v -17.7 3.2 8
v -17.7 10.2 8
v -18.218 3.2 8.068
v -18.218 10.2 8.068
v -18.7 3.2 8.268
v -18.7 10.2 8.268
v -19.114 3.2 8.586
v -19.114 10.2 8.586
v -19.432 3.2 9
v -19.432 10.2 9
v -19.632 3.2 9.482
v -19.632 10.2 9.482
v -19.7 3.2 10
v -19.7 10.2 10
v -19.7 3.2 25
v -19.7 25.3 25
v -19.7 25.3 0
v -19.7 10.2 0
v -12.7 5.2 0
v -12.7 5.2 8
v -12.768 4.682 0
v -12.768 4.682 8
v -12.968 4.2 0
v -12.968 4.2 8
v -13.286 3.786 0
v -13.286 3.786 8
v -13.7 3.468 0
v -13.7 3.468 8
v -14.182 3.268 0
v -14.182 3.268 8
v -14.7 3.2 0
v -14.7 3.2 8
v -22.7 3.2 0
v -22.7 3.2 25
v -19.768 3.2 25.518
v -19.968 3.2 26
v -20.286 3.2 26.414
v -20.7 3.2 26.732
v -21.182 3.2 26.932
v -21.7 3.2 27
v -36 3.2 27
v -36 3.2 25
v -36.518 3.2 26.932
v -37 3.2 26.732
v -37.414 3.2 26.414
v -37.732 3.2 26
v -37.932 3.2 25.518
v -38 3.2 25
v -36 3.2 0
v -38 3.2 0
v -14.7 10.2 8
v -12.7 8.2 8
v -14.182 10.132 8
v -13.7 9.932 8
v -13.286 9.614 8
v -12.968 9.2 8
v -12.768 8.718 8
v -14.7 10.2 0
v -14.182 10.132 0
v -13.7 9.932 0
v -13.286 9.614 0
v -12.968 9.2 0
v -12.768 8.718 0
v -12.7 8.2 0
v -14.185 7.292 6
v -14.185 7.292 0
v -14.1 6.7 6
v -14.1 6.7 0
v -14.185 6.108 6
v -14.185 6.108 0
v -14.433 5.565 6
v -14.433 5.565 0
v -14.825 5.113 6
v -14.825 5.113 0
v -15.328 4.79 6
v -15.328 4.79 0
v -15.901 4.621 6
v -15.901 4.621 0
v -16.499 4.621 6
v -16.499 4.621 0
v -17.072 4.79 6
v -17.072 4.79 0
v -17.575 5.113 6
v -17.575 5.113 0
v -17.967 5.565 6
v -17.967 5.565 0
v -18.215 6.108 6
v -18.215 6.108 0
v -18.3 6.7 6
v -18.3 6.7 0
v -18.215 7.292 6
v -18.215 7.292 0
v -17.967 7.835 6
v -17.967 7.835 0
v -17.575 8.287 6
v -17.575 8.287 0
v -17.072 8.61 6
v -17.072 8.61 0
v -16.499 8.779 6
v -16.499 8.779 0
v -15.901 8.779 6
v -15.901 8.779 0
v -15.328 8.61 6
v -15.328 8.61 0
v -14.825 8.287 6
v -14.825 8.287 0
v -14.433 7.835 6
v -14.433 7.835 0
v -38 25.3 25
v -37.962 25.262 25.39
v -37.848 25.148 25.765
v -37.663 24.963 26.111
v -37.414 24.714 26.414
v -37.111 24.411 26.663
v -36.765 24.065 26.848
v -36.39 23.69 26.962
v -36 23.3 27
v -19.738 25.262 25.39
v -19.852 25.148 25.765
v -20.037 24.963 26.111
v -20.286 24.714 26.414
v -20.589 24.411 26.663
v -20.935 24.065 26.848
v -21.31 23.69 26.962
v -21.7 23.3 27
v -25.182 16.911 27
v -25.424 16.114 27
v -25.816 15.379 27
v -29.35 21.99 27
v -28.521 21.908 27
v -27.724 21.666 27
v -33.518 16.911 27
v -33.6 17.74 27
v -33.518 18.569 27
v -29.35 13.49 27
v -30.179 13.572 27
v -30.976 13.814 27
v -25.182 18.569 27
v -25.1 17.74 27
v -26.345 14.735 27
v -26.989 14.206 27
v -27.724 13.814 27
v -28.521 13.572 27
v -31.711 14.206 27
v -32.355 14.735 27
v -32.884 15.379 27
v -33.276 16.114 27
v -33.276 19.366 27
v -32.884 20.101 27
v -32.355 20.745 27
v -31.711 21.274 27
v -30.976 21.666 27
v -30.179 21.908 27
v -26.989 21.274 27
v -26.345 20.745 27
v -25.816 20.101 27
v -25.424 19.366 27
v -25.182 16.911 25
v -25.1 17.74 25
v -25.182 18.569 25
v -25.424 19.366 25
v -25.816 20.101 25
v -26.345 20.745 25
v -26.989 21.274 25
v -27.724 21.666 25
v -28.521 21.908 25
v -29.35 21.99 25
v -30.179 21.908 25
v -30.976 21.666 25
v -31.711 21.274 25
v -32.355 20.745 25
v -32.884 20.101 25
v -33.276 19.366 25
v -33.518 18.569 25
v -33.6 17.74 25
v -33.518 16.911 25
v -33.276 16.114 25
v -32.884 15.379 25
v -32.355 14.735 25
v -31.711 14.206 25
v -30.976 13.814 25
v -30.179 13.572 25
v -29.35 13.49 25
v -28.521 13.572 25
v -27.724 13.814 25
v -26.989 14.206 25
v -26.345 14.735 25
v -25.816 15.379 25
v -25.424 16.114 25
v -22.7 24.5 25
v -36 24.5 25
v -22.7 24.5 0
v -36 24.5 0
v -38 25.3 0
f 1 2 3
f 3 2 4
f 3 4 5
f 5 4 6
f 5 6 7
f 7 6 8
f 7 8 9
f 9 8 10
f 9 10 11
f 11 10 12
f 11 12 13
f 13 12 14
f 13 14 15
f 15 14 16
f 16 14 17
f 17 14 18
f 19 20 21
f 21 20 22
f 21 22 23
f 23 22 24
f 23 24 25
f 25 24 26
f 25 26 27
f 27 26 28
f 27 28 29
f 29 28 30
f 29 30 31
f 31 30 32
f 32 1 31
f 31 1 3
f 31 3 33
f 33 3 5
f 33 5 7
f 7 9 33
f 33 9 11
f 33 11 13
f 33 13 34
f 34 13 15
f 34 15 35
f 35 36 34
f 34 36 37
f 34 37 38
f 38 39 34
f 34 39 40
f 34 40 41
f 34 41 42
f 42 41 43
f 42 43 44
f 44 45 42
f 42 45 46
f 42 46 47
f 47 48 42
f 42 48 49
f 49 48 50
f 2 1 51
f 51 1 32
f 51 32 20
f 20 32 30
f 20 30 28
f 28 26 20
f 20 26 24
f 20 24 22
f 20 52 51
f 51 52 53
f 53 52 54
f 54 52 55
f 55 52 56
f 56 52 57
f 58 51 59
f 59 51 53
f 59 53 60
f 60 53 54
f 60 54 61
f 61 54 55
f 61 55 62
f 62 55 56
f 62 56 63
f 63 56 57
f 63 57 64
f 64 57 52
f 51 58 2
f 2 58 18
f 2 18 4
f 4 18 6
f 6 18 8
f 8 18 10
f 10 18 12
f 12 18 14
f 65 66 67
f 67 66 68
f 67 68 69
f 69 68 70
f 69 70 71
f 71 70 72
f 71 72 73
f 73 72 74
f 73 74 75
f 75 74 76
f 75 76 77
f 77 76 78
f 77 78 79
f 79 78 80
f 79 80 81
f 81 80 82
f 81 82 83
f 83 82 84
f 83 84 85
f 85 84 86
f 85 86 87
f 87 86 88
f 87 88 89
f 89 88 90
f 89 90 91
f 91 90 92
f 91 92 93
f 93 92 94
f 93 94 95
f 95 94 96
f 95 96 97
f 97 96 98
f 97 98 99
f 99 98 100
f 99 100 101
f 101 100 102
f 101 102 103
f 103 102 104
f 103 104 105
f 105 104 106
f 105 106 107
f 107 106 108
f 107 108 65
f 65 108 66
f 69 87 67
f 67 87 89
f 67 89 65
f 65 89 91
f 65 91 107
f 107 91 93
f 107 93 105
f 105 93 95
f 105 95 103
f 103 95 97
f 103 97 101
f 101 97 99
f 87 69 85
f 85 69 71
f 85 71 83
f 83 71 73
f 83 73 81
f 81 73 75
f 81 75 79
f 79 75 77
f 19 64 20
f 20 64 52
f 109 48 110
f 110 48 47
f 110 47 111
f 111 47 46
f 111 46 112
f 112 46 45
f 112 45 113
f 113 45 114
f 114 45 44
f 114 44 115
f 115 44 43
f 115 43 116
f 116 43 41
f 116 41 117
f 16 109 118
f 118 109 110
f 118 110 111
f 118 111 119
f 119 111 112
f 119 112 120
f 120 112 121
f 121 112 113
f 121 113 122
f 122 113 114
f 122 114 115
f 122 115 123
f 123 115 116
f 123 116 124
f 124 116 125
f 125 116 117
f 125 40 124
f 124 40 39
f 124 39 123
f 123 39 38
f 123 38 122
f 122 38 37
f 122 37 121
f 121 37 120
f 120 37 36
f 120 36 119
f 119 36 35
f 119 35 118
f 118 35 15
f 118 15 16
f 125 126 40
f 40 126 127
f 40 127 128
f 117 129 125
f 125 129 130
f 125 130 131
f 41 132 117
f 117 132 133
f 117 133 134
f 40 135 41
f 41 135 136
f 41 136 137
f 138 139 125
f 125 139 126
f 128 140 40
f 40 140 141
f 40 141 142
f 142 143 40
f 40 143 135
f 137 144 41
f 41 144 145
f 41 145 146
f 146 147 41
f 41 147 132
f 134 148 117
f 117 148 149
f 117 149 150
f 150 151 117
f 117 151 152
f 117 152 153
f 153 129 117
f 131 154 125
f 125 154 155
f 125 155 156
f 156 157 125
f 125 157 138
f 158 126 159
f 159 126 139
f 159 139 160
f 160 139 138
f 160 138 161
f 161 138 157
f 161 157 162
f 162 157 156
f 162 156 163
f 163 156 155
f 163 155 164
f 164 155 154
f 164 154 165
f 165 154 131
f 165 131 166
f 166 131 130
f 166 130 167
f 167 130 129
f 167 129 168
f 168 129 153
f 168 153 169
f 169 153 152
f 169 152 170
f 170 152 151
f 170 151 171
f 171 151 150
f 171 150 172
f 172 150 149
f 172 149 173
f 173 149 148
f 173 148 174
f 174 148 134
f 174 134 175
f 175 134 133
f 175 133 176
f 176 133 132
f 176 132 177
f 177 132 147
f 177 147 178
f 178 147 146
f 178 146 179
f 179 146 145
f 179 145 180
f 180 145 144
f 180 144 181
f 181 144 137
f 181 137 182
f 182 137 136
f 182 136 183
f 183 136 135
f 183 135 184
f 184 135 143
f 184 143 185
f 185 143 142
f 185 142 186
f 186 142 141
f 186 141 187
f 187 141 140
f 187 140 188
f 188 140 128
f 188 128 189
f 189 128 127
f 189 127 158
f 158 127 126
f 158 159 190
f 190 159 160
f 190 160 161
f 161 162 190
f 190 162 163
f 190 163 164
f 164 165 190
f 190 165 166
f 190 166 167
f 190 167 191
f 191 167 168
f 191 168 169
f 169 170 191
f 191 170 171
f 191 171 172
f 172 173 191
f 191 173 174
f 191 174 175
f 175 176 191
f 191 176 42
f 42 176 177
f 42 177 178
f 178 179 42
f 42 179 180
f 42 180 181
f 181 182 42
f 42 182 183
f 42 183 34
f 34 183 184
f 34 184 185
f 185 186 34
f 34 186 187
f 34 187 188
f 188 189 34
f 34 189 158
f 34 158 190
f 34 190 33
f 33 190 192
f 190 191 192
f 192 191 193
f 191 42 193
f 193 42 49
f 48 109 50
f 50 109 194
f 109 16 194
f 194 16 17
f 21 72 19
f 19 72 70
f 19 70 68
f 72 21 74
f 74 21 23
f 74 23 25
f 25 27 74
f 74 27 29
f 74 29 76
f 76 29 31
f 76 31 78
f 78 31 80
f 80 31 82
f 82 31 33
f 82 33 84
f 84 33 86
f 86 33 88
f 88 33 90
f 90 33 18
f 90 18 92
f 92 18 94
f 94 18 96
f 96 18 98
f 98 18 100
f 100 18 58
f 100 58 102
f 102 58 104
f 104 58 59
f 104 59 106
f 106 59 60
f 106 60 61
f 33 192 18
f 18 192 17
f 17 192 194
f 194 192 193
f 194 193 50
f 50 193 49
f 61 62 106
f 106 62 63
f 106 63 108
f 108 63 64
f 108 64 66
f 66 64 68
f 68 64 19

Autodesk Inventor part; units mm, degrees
ref_plane "YZ Plane" through (0, 0, 0) normal (1, 0, 0) x (0, 1, 0)
ref_plane "XZ Plane" through (0, 0, 0) normal (0, 1, 0) x (-1, 0, 0)
ref_plane "XY Plane" through (0, 0, 0) normal (0, 0, 1) x (1, 0, 0)
sketch "Эскиз1" plane through (0, 0, 0) normal (0, 0, 1) x (1, 0, 0)
  line L0 (0, 0) -> (-38, 0) construction
  line L1 (-38, 0) -> (-38, 25) construction
  line L2 (-38, 25) -> (0, 25) construction
  line L3 (0, 25) -> (0, 0) construction
  line L4 (-38, 25) -> (-35, 25) construction
  line L5 (-35, 25) -> (-35, 23.5) construction
  line L6 (-35, 23.5) -> (-38, 23.5) construction
  line L7 (-38, 23.5) -> (-38, 25) construction
  line L8 (-35, 23.5) -> (-23.7, 23.5)
  line L9 (-23.7, 23.5) -> (-23.7, 3.2)
  line L10 (-23.7, 3.2) -> (-35, 3.2)
  line L11 (-35, 3.2) -> (-35, 23.5)
  line L12 (-35, 25) -> (-35, 25.3) construction
  line L13 (-35, 25.3) -> (-38, 25.3) construction
  line L14 (-35, 23.5) -> (-36, 23.5) construction
  line L15 (-36, 23.5) -> (-36, 24.5) construction
  line L16 (-36, 24.5) -> (-35, 24.5) construction
  line L17 (-35, 24.5) -> (-35, 23.5) construction
  line L18 (-36, 24.5) -> (-22.7, 24.5)
  line L19 (-22.7, 24.5) -> (-22.7, 3.2)
  line L20 (-22.7, 3.2) -> (-36, 3.2)
  line L21 (-36, 3.2) -> (-36, 24.5)
  line L22 (-38, 25.3) -> (-19.7, 25.3)
  line L23 (-19.7, 25.3) -> (-19.7, 3.2)
  line L24 (-19.7, 3.2) -> (-38, 3.2)
  line L25 (-38, 3.2) -> (-38, 25.3)
  line L26 (-23.7, 23.5) -> (-35, 23.5) construction
  line L27 (-35, 23.5) -> (-35, 17.74) construction
  line L28 (-35, 17.74) -> (-23.7, 17.74) construction
  line L29 (-23.7, 17.74) -> (-23.7, 23.5) construction
  circle A0 centre (-29.35, 17.74) radius 4.25
  line L30 (-19.7, 3.2) -> (-12.7, 3.2)
  line L31 (-12.7, 3.2) -> (-12.7, 10.2)
  line L32 (-12.7, 10.2) -> (-19.7, 10.2)
  line L33 (-19.7, 10.2) -> (-19.7, 3.2)
  line L34 (-16.2, 10.2) -> (-16.2, 3.2) construction
  line L35 (-12.7, 6.7) -> (-19.7, 6.7) construction
  circle A1 centre (-16.2, 6.7) radius 2.1
  line L36 (-29.35, 17.74) -> (-29.35, 18.74)
  point P0 (-23.7, 3.2)
  dimension "d0" = 38
  dimension "d1" = 25
  dimension "d2" = 3
  dimension "d3" = 1.5
  dimension "d4" = 11.3
  dimension "d5" = 20.3
  dimension "d6" = 0.3
  dimension "d7" = 1
  dimension "d8" = 1
  dimension "d9" = 13.3
  dimension "d10" = 21.3
  dimension "d11" = 18.3
  dimension "d12" = 5.76
  dimension "d13" = 8.5
  dimension "d19" = 7
  dimension "d20" = 7
  dimension "d21" = 4.2
  dimension "d27" = 1
extrude "Выдавливание1" add sketch "Эскиз1" along normal blind 27 contours L24 L25 L22 L23 L19 L18 L21
extrude "Выдавливание2" add sketch "Эскиз1" against normal blind 2 from surface at 27 contours L11 L20 L21 L18 L19 L9 L8 | L8 L9 L10 L11
fillet "Сопряжение1" radius 2 3 edges at (-38, 14.25, 27) (-28.85, 25.3, 27) (-19.7, 14.25, 27)
extrude "Выдавливание3" add sketch "Эскиз1" along normal blind 8 contours L23 L32 L31 L30 | A1
extrude "Выдавливание4" cut sketch "Эскиз1" along normal blind 6 contours A1
fillet "Сопряжение2" radius 2 3 edges at (-12.7, 10.2, 4) (-12.7, 3.2, 4) (-19.7, 6.7, 8)
properties part number "fast_switch"
